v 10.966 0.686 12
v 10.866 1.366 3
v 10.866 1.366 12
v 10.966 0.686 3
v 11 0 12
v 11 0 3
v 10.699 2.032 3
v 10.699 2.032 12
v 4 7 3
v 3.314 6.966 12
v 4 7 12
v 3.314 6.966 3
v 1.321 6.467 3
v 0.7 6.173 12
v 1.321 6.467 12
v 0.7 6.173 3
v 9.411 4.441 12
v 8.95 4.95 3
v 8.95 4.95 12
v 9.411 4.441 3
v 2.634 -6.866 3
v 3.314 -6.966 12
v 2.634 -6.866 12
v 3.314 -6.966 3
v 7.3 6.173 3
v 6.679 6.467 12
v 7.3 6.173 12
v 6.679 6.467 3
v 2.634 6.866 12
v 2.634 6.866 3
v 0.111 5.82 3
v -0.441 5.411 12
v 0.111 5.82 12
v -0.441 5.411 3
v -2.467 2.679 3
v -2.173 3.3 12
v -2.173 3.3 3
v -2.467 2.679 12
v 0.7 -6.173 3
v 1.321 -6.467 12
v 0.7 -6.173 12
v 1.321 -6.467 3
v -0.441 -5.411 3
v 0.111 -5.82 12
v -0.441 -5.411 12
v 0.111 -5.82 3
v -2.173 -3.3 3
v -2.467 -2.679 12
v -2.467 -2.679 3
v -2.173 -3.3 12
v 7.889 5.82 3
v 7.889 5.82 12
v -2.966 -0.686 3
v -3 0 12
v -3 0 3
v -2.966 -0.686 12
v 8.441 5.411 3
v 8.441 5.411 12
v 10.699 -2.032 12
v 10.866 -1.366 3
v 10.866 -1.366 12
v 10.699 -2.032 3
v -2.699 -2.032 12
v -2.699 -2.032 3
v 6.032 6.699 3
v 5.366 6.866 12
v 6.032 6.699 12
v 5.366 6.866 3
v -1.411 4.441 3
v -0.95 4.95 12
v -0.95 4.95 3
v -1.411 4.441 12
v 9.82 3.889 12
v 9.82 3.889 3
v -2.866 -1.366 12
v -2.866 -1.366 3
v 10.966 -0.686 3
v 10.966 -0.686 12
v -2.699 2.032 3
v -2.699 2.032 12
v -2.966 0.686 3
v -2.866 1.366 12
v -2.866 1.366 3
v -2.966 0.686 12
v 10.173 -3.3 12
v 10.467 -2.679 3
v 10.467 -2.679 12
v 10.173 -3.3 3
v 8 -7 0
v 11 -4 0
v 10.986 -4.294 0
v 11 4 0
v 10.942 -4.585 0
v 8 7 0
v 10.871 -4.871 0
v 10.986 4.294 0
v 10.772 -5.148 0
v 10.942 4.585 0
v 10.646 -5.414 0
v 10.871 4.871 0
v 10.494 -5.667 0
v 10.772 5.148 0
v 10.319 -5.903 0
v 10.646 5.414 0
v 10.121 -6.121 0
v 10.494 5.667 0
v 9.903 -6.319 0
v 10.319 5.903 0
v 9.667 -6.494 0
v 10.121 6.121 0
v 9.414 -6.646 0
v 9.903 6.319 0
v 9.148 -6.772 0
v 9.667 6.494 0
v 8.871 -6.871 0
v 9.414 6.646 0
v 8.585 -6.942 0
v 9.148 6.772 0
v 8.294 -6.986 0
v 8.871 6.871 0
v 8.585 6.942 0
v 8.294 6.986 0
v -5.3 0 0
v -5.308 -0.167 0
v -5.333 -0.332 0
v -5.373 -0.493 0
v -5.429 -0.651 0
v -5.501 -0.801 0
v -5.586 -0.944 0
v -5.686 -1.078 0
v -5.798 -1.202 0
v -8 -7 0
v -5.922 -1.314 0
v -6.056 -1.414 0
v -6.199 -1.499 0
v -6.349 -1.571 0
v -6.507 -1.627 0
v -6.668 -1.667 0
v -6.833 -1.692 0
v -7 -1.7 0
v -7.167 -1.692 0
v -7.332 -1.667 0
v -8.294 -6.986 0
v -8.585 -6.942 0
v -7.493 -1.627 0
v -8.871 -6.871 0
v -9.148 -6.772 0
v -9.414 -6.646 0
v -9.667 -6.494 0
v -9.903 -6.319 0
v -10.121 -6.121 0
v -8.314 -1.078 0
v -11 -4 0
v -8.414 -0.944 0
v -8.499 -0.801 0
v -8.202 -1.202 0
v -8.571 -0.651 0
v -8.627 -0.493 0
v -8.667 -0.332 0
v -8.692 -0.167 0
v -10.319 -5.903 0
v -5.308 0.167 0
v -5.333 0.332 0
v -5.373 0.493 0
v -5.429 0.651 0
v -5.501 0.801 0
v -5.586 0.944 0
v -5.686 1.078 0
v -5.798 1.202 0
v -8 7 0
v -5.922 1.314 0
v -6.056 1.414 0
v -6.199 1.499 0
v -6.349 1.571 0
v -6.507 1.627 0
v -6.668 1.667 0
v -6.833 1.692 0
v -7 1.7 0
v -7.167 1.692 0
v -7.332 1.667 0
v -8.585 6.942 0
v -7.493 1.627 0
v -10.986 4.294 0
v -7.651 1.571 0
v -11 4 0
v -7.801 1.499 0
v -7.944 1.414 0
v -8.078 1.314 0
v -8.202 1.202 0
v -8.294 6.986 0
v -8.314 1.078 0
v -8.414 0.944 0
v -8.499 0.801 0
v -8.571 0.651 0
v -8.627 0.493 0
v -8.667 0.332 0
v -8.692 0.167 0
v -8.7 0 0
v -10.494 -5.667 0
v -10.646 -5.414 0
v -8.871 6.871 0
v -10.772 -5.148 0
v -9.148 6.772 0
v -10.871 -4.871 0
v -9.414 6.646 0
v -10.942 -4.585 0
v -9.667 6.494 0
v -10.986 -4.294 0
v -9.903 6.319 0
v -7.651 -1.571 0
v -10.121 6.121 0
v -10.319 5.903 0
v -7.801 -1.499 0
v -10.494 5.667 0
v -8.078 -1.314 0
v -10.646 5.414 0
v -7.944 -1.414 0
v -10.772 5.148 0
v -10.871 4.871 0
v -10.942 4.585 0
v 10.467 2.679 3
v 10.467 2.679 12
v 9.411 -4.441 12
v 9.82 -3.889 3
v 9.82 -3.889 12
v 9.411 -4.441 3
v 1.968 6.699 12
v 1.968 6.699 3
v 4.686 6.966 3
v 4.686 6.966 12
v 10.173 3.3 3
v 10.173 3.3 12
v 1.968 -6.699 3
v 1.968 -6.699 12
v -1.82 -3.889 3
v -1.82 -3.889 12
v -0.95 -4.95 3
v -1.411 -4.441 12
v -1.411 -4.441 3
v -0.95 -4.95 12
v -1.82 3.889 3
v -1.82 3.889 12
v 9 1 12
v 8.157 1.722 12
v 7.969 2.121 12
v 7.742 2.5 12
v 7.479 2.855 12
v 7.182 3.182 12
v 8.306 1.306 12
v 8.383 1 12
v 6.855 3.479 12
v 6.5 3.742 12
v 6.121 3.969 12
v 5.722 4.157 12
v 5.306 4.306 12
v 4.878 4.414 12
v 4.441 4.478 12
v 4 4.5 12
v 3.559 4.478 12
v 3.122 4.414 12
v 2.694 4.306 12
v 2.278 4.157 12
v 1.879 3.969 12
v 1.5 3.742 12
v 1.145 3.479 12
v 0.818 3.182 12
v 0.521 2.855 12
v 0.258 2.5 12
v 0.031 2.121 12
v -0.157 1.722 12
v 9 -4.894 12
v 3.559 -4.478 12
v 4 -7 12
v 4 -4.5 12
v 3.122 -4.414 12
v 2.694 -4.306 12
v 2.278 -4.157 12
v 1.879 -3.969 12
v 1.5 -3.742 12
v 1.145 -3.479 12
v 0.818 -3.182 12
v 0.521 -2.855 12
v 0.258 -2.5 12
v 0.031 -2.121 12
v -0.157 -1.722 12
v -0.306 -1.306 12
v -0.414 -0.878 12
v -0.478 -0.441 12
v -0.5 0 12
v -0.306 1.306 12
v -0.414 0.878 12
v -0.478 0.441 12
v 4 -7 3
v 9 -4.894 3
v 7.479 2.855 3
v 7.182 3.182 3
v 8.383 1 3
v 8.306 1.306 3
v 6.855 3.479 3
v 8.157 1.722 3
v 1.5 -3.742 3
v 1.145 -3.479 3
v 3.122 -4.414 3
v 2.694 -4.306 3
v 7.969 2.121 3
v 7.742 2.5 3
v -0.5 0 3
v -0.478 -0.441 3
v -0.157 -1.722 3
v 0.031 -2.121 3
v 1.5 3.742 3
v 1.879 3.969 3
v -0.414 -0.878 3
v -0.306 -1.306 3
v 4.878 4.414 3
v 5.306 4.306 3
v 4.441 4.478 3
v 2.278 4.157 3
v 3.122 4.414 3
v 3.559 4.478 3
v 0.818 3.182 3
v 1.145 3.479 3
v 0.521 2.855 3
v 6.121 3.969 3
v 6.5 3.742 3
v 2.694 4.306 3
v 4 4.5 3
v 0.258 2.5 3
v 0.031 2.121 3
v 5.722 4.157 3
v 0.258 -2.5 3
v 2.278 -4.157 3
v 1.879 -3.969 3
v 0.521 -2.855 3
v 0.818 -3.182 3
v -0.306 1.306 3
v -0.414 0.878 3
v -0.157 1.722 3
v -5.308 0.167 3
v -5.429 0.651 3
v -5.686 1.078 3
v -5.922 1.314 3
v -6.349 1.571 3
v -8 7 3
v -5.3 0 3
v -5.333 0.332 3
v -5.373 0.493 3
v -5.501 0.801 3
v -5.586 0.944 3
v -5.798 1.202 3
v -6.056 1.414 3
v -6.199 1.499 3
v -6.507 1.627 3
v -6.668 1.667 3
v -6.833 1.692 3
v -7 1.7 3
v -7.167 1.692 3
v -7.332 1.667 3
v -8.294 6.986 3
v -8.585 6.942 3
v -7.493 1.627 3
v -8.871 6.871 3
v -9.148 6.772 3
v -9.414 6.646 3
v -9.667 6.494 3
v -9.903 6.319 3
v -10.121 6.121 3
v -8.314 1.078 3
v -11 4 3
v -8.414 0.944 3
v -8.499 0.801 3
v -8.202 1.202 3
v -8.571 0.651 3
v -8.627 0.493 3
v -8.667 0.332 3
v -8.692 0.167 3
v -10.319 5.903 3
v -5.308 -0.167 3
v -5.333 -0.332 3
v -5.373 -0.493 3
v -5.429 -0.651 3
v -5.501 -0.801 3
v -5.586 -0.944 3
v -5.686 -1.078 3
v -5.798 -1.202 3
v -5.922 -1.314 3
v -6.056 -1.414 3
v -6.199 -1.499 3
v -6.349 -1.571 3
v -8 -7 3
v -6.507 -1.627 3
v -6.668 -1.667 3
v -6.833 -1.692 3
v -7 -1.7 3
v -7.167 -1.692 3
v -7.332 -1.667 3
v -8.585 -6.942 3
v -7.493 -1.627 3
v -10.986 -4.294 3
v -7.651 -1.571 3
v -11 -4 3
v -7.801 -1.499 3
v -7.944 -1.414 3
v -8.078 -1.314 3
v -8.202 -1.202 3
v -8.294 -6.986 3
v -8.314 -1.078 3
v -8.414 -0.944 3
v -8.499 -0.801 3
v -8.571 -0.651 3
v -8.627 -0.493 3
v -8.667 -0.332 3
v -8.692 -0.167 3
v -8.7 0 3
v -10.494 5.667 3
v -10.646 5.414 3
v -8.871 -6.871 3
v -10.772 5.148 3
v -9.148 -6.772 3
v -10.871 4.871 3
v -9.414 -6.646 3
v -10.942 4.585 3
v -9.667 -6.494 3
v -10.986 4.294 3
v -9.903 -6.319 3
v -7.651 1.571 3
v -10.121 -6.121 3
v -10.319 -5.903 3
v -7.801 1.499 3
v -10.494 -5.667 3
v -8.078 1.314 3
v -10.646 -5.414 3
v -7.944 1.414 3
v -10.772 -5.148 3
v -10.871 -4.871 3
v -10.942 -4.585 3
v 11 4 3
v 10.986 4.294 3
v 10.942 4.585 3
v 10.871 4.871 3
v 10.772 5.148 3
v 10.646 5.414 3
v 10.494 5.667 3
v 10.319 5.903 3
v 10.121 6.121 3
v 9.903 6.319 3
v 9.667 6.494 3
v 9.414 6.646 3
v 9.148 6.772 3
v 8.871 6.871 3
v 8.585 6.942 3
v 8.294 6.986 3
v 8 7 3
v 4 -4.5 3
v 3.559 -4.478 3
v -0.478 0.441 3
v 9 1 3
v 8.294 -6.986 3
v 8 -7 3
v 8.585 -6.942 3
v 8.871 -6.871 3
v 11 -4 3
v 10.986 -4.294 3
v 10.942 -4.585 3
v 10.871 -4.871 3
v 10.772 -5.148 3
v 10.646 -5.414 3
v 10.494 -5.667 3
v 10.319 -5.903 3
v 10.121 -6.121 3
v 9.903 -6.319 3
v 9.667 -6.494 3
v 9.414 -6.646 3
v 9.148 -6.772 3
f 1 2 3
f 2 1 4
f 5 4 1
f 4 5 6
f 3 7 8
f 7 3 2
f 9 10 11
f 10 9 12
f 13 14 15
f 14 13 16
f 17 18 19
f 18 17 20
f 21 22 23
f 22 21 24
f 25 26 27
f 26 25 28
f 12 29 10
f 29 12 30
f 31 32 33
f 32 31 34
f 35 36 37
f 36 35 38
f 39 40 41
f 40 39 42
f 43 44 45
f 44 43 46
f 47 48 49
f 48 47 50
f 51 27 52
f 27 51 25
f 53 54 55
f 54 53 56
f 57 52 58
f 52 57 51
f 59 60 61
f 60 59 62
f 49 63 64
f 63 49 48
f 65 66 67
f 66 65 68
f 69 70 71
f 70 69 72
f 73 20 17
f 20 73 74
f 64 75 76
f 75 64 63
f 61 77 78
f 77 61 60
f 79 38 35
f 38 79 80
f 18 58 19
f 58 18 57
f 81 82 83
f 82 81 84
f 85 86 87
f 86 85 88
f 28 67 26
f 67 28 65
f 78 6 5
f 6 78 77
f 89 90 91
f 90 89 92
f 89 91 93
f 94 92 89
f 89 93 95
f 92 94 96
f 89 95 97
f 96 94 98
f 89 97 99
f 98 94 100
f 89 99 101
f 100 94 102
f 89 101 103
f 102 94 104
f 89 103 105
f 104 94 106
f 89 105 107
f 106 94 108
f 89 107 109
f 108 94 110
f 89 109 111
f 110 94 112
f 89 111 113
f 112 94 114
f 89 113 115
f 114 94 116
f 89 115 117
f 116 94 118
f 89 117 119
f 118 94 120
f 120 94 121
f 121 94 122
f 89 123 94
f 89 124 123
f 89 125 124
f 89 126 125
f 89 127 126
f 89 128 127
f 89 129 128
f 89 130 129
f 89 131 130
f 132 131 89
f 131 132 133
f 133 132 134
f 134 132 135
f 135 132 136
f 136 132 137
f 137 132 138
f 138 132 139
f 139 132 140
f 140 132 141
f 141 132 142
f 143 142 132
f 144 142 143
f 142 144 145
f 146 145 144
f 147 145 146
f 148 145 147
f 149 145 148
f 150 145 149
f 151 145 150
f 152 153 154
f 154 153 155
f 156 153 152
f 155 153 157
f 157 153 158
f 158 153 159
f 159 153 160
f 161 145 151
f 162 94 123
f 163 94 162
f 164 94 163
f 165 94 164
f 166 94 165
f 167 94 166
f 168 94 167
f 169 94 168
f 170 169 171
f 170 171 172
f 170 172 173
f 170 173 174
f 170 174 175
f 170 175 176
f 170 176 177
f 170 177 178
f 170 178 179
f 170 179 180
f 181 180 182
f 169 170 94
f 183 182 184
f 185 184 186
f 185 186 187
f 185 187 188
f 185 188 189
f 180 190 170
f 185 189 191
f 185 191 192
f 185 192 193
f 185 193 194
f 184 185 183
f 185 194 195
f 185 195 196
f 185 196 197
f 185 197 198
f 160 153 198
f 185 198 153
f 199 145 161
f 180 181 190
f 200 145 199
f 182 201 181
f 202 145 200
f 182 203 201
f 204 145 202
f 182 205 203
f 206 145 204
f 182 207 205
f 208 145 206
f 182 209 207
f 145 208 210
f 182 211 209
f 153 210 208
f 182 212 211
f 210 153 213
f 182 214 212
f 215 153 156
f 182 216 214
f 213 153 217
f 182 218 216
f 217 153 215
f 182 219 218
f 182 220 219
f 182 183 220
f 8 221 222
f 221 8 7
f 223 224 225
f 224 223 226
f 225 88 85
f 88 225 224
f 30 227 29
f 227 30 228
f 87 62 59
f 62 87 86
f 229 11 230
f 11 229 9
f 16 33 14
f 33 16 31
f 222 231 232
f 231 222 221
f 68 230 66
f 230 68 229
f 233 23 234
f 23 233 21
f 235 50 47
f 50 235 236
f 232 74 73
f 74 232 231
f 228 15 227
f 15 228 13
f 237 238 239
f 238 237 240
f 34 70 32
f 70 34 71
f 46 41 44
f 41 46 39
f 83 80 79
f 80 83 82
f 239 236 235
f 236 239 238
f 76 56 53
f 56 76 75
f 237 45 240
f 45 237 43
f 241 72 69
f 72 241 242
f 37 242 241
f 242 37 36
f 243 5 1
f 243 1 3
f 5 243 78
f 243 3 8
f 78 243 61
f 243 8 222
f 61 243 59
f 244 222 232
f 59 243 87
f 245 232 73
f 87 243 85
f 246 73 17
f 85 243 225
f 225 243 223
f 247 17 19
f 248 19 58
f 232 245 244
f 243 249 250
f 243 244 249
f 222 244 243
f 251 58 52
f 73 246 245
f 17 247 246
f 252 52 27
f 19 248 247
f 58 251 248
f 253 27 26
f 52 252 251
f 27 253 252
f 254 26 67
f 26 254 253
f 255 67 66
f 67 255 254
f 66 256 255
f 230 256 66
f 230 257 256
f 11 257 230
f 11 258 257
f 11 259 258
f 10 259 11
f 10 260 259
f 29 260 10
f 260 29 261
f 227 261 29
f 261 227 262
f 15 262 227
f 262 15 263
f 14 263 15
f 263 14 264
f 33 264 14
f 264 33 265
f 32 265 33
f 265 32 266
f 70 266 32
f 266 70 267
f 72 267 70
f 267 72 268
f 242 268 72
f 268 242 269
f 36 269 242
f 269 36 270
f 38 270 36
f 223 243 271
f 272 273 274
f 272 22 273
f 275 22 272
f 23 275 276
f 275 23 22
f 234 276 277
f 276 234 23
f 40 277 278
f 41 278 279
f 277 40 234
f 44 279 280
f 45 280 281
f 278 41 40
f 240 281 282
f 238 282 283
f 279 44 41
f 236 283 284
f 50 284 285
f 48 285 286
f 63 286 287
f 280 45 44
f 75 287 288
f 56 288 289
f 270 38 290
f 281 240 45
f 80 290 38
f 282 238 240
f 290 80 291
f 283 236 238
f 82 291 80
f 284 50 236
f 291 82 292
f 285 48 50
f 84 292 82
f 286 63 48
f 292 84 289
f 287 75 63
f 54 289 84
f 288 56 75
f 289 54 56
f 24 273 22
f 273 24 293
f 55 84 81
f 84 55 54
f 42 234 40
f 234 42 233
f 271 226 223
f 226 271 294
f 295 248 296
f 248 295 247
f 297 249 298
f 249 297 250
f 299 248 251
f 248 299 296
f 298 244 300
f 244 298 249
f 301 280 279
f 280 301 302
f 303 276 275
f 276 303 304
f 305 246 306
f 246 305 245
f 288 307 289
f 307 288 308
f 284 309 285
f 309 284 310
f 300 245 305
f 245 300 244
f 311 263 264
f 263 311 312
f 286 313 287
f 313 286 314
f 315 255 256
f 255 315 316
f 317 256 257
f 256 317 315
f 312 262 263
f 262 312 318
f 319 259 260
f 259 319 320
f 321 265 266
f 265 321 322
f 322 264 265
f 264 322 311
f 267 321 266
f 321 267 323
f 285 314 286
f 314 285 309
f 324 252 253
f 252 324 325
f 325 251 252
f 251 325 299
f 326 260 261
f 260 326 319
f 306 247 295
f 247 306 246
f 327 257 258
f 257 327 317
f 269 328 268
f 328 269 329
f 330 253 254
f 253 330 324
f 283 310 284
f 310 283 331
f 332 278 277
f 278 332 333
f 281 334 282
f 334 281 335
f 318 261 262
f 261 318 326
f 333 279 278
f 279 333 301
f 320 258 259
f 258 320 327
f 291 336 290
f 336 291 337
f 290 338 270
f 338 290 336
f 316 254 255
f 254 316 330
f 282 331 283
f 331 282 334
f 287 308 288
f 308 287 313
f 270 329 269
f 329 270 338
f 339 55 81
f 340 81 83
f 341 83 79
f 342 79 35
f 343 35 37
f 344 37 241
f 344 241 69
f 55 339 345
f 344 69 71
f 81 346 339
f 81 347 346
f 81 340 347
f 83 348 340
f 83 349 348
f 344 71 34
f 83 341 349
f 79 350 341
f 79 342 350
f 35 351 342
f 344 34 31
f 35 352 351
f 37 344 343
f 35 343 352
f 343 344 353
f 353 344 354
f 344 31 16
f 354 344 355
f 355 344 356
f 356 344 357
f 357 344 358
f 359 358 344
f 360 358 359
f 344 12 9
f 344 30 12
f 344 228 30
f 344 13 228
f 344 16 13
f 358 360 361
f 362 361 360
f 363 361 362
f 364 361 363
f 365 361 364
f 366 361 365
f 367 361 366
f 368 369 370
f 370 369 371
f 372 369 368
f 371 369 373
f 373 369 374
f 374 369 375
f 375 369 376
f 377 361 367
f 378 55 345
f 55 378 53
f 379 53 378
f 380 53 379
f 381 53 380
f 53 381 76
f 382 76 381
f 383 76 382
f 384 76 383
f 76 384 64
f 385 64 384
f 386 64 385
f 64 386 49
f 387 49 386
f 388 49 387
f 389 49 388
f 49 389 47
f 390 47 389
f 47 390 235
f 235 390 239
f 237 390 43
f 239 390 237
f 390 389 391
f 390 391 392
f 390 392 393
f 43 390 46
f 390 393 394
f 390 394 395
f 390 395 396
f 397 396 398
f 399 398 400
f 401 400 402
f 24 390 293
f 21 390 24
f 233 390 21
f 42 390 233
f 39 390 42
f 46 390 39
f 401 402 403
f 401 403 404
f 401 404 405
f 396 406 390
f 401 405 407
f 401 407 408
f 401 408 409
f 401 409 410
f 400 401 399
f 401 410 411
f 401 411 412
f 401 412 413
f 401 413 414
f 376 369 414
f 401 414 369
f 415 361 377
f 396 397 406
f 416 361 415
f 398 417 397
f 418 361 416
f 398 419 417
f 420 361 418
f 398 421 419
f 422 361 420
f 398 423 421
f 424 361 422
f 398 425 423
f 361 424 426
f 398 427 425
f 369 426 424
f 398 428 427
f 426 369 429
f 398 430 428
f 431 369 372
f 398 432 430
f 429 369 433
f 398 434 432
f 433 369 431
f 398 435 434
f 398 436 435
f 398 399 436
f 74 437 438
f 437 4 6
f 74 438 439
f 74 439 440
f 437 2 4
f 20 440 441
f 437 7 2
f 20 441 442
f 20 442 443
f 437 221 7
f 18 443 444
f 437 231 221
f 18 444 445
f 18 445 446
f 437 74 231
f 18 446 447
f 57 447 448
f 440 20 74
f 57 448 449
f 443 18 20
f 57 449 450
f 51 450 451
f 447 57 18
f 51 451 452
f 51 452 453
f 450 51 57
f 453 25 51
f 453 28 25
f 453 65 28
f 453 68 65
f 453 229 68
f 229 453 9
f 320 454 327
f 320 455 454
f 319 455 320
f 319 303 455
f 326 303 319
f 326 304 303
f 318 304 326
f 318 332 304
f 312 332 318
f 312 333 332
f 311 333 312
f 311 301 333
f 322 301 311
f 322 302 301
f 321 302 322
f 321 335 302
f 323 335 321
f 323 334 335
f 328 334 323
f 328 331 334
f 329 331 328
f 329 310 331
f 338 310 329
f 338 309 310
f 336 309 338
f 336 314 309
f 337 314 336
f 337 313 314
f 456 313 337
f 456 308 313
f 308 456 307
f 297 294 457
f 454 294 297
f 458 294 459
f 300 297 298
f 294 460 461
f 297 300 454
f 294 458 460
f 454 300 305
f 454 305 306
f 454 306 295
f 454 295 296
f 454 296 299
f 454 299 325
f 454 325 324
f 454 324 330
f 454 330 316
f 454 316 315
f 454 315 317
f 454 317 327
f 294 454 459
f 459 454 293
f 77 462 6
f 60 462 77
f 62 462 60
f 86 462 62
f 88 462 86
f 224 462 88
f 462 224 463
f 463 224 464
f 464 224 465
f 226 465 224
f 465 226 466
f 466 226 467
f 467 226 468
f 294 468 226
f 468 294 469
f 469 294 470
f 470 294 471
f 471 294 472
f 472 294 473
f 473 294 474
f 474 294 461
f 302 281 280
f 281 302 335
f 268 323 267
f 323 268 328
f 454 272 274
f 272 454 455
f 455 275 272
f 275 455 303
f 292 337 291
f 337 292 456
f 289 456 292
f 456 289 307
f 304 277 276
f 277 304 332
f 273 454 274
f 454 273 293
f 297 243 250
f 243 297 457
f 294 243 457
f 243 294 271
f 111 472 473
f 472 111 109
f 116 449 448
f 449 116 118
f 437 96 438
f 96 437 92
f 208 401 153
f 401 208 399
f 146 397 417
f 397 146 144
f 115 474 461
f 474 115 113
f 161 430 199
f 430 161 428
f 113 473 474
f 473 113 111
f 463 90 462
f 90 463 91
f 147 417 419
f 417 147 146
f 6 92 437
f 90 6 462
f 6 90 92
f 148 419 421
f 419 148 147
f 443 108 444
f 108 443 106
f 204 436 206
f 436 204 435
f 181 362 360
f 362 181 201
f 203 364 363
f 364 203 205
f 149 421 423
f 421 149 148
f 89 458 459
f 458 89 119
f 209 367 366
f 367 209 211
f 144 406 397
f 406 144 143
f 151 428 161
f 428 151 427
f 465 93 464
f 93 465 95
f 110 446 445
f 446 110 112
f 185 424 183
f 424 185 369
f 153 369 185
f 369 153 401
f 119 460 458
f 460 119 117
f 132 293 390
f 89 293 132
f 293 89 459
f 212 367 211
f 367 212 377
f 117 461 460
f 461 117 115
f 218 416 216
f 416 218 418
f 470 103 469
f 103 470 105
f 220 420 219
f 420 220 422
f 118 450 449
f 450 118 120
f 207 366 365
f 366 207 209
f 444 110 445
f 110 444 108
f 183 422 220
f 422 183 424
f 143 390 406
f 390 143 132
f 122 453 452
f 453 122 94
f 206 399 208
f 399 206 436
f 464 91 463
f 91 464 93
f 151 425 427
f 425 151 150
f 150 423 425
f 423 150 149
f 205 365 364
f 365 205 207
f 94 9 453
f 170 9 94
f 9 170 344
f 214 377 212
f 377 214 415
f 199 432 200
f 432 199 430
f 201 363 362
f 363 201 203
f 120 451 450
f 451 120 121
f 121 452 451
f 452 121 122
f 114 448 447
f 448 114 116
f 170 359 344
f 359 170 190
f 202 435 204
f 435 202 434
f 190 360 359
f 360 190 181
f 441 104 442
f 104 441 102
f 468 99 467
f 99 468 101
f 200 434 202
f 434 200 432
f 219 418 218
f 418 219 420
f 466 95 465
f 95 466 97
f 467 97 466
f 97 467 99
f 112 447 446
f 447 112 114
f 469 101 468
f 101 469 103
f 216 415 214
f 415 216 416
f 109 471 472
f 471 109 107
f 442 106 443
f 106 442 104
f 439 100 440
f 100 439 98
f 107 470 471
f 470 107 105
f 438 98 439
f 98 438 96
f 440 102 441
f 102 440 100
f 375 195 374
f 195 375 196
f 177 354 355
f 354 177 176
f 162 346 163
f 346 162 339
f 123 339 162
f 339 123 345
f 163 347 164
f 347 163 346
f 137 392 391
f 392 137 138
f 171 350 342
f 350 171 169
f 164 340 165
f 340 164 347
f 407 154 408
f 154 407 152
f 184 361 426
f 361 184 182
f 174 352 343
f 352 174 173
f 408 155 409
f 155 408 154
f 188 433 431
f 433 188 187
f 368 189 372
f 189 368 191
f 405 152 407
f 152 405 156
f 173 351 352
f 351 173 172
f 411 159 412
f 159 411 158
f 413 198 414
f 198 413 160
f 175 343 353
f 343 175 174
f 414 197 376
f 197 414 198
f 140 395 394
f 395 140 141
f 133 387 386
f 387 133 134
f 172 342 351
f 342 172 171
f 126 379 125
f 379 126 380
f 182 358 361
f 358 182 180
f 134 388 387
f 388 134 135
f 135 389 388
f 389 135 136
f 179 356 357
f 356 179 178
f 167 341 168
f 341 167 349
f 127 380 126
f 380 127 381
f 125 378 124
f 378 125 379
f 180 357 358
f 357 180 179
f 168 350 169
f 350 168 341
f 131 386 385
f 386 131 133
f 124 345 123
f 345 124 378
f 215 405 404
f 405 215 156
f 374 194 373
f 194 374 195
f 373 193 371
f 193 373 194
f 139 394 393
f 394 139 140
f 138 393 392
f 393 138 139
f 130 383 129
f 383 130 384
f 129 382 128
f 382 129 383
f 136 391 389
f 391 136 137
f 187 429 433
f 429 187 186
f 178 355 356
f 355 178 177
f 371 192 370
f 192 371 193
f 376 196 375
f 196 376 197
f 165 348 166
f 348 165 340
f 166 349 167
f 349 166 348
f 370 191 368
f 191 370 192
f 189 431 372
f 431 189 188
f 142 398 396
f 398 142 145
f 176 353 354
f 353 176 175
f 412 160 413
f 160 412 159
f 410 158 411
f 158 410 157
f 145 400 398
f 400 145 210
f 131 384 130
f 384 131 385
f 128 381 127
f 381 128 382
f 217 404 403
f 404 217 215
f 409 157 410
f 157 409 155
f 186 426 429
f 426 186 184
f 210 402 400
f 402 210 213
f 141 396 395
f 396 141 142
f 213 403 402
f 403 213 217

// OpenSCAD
// file: common.scad
// KARAKURI shared parameters and helpers
// All dimensions in millimetres. Holes are printed undersize-safe:
// M3 through 3.4, M4 through 4.5, M2.5 through 2.9, quarter-inch 6.6.

$fn = 64;

m2_5 = 2.9;
m3 = 3.4;
m4 = 4.5;
quarter_inch = 6.6;

module rounded_plate(x, y, t, r = 8) {
    linear_extrude(t)
        offset(r = r) offset(delta = -r)
            square([x, y], center = true);
}

module hole(d, h) {
    translate([0, 0, -0.5]) cylinder(d = d, h = h + 1);
}

module slot(d, len, h) {
    translate([0, 0, -0.5])
        linear_extrude(h + 1)
            hull() {
                translate([-len / 2, 0]) circle(d = d);
                translate([ len / 2, 0]) circle(d = d);
            }
}

module four_holes(dx, dy, d, h) {
    for (sx = [-1, 1], sy = [-1, 1])
        translate([sx * dx / 2, sy * dy / 2, 0]) hole(d, h);
}
// main file
// Cable management clip, 8 mm bundle. Bolt one M3 through the deck or
// stick on a 3M pad. Print a dozen; the slicer fits many per plate.
include <common.scad>

module cable_clip() {
    difference() {
        union() {
            rounded_plate(22, 14, 3, 3);
            translate([4, 0, 0]) difference() {
                cylinder(d = 14, h = 12);
                translate([0, 0, 3]) cylinder(d = 9, h = 12);
                translate([0, -7, 3]) linear_extrude(12) square([5, 8]);
            }
        }
        translate([-7, 0, 0]) hole(m3, 3);
    }
}
cable_clip();
